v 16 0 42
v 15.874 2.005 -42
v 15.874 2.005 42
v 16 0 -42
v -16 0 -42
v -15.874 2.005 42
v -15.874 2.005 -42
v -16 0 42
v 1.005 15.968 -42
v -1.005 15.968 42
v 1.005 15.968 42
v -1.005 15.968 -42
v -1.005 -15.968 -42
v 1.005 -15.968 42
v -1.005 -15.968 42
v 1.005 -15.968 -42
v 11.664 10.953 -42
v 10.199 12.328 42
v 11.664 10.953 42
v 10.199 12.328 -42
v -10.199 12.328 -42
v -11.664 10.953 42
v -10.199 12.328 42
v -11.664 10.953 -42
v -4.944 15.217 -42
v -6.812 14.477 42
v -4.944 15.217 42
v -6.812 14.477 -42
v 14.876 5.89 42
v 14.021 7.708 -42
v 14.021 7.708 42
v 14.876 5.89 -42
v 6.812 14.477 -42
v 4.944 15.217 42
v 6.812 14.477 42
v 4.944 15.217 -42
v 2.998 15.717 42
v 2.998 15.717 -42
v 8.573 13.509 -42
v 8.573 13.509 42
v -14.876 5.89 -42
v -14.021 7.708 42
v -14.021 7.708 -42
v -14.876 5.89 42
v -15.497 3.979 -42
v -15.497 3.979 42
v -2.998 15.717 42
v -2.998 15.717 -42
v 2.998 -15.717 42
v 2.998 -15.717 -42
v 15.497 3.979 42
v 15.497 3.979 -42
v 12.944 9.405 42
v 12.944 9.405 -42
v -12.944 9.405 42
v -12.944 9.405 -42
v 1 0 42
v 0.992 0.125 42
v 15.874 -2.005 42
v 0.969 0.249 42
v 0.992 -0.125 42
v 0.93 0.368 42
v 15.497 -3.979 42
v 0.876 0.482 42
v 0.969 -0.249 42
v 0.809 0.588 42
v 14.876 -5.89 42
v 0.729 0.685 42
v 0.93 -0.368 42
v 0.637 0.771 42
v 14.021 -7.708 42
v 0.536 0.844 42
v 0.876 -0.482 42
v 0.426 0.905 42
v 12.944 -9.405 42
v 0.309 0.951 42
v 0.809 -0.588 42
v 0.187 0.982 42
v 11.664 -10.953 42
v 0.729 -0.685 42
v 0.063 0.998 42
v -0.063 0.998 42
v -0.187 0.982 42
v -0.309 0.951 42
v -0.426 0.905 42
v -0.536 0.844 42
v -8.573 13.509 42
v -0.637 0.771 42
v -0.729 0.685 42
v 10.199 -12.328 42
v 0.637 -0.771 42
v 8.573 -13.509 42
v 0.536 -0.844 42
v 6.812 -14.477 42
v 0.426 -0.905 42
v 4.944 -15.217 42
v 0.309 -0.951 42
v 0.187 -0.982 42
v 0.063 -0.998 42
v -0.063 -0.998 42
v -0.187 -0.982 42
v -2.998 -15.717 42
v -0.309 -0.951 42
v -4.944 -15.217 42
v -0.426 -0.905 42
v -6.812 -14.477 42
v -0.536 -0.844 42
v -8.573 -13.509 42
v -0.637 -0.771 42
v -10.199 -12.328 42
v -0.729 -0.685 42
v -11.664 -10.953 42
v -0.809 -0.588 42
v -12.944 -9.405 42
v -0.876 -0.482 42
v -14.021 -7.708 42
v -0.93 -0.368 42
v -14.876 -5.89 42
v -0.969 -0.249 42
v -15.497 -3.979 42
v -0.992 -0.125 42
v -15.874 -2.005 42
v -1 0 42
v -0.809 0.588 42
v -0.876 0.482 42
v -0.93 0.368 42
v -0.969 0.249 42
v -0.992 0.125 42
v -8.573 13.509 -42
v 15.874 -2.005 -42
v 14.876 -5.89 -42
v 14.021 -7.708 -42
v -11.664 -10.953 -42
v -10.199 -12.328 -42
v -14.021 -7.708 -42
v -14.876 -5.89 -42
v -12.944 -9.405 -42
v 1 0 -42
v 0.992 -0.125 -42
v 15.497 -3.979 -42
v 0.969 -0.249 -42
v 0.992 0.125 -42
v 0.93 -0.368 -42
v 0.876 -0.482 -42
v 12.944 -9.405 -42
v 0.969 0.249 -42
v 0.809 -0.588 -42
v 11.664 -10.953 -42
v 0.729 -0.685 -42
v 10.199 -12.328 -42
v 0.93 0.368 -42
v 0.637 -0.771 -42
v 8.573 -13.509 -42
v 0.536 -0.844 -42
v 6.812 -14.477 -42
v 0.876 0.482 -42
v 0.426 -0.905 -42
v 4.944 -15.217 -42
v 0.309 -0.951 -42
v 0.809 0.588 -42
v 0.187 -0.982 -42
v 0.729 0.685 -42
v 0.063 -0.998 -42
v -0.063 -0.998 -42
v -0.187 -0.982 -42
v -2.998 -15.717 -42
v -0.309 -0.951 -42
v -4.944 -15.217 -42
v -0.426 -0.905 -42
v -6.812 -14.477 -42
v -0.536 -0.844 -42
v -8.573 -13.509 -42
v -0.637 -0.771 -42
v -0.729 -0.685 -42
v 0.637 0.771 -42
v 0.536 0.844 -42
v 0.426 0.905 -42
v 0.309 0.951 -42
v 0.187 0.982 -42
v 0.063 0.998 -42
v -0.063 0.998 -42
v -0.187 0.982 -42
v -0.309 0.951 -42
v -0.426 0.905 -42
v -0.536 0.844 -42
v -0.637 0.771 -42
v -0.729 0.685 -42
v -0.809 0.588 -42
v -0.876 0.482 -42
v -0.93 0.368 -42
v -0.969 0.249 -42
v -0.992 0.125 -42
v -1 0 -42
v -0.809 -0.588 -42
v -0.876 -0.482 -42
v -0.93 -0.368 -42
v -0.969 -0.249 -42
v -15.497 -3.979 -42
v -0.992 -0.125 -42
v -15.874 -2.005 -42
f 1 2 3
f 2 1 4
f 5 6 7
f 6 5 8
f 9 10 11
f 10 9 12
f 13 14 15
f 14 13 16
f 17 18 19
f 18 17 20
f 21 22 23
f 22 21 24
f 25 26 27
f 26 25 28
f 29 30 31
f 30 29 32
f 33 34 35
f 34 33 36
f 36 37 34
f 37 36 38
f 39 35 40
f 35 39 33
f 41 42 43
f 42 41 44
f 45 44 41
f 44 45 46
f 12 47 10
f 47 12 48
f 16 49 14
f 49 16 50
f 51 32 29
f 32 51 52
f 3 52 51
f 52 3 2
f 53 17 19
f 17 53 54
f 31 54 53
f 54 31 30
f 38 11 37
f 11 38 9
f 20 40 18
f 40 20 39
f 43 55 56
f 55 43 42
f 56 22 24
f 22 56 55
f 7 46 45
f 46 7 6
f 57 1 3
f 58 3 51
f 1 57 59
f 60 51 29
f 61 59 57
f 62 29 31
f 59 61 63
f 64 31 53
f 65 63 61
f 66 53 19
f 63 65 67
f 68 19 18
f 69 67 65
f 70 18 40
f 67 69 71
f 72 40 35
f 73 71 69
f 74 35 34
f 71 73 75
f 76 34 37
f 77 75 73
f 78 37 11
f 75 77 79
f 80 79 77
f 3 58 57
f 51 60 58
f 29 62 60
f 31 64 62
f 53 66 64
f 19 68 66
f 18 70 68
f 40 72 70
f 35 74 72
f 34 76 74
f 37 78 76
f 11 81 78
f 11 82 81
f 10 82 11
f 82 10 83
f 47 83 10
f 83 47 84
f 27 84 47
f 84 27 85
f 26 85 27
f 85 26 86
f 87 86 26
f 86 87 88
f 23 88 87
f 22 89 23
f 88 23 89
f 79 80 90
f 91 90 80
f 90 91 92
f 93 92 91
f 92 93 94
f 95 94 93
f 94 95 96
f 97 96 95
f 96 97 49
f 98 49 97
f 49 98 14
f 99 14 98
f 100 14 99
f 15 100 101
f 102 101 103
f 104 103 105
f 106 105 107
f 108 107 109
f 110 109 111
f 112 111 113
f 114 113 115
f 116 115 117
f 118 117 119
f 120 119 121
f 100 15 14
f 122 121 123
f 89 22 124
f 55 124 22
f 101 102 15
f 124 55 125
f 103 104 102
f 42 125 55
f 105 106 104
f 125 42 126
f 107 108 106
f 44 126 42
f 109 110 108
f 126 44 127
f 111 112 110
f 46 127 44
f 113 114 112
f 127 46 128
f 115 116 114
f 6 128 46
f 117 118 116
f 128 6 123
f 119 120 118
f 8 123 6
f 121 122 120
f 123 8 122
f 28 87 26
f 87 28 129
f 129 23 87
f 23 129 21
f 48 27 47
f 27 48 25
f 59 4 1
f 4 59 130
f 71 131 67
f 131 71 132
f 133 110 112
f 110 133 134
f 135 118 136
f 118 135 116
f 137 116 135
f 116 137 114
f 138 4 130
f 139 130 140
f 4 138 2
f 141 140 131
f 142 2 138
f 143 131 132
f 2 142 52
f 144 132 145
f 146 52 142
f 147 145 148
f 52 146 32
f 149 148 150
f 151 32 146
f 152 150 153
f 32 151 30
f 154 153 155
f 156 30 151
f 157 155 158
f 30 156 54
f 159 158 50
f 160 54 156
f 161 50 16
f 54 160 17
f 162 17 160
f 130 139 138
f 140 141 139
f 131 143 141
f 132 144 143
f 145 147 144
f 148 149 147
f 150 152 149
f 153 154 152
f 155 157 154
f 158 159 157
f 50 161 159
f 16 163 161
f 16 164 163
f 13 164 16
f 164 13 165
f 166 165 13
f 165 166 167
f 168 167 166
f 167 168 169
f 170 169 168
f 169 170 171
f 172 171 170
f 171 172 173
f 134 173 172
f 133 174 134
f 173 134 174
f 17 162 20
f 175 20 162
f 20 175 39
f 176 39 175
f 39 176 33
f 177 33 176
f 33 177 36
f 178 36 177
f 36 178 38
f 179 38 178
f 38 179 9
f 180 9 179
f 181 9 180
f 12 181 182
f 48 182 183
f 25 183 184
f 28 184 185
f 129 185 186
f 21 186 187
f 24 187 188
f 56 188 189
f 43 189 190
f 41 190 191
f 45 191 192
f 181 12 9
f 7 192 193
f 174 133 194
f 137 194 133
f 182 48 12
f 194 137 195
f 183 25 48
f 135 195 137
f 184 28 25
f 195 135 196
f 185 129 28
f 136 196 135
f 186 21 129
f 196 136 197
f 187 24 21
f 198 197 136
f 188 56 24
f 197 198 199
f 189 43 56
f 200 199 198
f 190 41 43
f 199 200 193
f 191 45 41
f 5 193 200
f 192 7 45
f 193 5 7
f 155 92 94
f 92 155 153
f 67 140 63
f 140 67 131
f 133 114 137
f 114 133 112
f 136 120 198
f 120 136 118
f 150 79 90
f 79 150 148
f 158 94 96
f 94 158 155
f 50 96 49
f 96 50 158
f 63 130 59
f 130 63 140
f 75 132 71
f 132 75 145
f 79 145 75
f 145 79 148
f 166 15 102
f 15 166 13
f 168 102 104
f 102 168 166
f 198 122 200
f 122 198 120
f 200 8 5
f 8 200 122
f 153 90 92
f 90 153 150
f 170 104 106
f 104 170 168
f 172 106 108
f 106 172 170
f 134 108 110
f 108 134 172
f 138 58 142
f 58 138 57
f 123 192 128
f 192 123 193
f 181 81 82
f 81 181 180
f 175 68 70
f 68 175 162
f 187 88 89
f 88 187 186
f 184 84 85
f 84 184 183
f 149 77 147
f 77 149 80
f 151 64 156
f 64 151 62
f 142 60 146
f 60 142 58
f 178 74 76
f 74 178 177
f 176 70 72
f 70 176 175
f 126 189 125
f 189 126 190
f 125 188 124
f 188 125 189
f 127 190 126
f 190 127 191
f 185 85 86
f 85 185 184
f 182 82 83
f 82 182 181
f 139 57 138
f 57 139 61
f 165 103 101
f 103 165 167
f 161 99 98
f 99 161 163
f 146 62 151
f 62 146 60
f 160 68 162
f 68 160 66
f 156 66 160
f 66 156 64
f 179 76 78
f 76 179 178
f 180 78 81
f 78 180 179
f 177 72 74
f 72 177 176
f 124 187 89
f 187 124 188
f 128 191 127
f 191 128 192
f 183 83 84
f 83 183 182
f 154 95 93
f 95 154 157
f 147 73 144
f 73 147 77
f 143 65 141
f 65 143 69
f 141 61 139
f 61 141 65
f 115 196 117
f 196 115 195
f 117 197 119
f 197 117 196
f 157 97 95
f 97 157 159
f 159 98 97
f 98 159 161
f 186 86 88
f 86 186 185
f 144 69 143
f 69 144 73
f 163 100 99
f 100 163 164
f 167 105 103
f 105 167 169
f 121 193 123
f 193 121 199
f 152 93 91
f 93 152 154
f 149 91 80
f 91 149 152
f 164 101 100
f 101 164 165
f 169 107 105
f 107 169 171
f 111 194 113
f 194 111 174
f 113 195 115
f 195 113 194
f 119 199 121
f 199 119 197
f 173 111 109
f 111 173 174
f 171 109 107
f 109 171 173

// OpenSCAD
$fn = 50;


difference() {
	union() {
		translate(v = [0, 0, -42.0000000000]) {
			cylinder(h = 84, r = 16.0000000000);
		}
	}
	union() {
		translate(v = [0, 0, -100.0000000000]) {
			cylinder(h = 200, r = 1.0000000000);
		}
	}
}
